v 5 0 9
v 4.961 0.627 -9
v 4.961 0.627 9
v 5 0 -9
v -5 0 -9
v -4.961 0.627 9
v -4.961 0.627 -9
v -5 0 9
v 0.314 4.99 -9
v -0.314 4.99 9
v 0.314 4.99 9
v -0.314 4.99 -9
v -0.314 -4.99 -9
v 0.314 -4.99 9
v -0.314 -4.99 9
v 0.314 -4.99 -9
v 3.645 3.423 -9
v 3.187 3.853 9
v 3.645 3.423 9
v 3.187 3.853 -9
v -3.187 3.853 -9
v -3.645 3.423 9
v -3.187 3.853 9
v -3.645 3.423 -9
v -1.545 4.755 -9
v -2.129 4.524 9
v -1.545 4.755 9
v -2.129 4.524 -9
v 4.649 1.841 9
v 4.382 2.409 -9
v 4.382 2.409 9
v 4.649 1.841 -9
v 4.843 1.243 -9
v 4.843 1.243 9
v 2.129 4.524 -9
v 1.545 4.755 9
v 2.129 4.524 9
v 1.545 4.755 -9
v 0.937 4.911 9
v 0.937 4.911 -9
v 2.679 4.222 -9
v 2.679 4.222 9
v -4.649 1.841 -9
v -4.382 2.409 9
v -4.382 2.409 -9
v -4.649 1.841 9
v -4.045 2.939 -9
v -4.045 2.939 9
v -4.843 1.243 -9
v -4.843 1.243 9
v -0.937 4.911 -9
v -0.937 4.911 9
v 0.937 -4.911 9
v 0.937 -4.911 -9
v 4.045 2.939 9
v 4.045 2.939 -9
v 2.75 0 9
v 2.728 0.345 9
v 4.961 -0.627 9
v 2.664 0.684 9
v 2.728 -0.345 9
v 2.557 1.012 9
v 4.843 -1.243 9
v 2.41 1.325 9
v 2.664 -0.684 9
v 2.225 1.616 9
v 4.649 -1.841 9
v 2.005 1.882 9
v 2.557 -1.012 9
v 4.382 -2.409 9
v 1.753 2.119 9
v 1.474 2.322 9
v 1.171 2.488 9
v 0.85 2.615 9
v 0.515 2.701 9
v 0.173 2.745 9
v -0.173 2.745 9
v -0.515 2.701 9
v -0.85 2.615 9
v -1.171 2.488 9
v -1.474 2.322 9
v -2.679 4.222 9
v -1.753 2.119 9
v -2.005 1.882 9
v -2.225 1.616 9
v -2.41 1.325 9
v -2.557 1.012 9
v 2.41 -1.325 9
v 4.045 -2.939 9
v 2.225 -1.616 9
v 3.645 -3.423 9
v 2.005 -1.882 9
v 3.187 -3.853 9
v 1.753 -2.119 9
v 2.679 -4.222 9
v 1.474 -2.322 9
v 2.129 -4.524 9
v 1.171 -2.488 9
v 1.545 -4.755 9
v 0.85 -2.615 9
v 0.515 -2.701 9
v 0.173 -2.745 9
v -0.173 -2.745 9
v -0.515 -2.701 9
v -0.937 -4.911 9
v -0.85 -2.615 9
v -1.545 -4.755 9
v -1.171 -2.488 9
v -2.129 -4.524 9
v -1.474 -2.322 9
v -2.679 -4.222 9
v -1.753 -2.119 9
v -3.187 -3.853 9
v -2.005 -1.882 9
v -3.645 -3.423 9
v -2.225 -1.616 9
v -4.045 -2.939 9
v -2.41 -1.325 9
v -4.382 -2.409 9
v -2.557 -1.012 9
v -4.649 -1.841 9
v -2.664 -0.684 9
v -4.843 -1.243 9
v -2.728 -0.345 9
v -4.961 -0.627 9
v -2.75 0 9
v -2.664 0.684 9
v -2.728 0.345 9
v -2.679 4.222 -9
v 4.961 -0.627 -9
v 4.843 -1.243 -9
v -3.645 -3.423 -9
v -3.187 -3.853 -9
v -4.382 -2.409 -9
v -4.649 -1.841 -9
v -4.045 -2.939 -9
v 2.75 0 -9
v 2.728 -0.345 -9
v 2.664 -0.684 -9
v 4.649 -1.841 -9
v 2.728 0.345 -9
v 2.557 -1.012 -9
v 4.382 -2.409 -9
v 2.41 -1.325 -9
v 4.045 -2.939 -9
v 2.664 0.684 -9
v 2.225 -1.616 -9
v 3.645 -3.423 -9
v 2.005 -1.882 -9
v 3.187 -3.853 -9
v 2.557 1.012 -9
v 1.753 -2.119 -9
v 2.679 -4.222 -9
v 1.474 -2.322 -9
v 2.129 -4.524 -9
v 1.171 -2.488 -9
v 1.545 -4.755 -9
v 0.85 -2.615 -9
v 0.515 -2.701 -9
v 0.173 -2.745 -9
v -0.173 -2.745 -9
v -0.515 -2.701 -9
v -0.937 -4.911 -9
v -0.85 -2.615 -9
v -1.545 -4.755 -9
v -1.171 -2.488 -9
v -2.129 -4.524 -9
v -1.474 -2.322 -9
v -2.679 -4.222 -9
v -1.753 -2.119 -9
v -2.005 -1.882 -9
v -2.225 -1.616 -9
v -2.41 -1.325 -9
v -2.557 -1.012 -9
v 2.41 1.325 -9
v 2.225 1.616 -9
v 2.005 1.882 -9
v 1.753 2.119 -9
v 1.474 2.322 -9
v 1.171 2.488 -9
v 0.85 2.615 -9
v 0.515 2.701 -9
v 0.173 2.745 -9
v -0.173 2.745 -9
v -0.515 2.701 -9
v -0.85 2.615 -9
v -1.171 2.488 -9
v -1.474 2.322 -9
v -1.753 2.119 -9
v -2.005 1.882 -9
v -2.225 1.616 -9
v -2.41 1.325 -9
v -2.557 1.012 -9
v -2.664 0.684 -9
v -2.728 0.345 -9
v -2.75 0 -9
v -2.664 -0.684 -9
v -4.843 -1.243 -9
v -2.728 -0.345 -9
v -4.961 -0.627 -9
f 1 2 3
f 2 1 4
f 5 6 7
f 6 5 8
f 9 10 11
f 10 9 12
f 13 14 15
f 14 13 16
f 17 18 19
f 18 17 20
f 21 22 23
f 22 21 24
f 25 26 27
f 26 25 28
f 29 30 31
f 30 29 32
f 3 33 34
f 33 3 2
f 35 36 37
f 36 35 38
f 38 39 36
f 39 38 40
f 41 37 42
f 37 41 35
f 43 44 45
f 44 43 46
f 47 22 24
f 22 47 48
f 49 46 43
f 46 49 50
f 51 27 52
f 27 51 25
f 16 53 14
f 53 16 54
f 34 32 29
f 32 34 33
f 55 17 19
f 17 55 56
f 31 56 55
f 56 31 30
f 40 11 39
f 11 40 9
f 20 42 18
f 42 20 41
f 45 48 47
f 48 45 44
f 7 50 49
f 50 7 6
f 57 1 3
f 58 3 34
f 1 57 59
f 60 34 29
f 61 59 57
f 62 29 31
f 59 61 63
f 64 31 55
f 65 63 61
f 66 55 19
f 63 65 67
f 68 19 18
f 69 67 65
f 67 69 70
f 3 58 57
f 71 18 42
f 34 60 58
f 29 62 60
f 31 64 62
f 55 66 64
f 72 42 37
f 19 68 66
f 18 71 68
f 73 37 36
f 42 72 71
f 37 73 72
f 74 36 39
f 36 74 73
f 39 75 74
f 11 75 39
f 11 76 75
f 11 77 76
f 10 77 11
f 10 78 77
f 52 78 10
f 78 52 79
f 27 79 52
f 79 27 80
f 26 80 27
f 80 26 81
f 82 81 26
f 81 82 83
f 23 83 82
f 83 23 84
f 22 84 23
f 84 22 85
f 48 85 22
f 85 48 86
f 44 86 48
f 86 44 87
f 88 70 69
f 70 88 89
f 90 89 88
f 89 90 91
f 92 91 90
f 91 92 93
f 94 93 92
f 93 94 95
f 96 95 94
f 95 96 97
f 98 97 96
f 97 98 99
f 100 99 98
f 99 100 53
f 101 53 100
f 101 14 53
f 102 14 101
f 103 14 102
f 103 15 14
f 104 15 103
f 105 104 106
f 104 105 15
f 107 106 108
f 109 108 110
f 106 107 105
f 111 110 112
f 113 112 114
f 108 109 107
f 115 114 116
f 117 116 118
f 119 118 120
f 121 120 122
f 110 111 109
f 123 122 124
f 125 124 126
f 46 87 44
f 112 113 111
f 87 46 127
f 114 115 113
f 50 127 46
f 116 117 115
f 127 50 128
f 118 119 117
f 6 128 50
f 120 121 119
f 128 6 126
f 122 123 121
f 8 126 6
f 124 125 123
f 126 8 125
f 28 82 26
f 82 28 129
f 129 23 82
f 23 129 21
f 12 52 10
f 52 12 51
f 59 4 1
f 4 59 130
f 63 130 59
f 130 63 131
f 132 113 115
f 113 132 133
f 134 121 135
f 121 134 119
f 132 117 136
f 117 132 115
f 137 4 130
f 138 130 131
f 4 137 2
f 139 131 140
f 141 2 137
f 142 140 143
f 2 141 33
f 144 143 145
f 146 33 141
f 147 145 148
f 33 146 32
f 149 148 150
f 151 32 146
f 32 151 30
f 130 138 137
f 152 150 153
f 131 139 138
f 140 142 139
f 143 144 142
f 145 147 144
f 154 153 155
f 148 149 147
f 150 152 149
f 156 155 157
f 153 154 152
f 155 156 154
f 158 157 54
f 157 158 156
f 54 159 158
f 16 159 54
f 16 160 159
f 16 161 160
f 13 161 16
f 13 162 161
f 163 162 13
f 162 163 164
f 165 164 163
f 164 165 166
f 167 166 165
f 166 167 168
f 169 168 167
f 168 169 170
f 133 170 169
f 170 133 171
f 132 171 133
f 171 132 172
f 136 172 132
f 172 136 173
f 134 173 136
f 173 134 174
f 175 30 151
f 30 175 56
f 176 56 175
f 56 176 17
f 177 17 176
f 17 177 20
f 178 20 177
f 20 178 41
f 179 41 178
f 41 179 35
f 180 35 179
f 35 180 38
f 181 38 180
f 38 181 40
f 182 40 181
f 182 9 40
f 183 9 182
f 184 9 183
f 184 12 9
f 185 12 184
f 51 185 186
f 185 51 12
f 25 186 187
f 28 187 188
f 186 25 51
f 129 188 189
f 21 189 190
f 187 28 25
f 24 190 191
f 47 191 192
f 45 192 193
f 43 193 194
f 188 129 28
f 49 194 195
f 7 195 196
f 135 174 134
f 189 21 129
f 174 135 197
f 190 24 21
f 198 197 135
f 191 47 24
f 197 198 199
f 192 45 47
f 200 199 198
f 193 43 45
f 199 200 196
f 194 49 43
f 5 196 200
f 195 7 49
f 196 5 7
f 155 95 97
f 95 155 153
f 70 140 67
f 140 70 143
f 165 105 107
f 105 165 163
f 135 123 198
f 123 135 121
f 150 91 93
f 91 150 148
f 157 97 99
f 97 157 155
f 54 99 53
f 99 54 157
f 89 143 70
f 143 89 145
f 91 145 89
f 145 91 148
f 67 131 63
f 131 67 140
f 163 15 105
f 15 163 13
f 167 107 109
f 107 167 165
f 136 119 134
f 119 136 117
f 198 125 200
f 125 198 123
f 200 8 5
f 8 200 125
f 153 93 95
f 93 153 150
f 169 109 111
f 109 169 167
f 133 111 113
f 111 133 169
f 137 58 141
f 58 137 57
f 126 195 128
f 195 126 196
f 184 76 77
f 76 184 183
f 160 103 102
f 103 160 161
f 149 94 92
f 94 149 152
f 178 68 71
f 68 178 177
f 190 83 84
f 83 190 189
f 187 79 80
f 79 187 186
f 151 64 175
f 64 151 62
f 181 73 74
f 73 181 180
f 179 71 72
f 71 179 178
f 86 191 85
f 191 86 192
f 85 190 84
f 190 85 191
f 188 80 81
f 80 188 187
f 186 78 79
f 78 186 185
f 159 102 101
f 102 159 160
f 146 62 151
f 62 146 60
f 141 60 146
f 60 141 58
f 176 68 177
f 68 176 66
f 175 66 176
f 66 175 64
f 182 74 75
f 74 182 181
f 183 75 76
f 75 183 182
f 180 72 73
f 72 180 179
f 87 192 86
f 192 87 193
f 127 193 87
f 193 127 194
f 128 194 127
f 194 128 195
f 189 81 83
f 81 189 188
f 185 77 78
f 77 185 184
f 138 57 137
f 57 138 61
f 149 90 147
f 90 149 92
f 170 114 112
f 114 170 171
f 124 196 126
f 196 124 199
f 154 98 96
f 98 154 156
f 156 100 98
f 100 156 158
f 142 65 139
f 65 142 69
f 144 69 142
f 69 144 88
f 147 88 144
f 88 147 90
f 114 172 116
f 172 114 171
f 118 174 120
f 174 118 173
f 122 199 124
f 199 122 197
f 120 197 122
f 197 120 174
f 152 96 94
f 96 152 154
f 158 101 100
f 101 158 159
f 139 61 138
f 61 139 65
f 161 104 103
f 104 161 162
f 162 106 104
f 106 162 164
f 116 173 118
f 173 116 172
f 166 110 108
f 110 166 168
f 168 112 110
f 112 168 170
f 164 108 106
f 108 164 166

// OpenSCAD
$fn = 50;


difference() {
	union() {
		translate(v = [0, 0, -9.0000000000]) {
			cylinder(h = 18, r = 5.0000000000);
		}
	}
	union() {
		translate(v = [0, 0, -100.0000000000]) {
			cylinder(h = 200, r = 2.7500000000);
		}
	}
}
